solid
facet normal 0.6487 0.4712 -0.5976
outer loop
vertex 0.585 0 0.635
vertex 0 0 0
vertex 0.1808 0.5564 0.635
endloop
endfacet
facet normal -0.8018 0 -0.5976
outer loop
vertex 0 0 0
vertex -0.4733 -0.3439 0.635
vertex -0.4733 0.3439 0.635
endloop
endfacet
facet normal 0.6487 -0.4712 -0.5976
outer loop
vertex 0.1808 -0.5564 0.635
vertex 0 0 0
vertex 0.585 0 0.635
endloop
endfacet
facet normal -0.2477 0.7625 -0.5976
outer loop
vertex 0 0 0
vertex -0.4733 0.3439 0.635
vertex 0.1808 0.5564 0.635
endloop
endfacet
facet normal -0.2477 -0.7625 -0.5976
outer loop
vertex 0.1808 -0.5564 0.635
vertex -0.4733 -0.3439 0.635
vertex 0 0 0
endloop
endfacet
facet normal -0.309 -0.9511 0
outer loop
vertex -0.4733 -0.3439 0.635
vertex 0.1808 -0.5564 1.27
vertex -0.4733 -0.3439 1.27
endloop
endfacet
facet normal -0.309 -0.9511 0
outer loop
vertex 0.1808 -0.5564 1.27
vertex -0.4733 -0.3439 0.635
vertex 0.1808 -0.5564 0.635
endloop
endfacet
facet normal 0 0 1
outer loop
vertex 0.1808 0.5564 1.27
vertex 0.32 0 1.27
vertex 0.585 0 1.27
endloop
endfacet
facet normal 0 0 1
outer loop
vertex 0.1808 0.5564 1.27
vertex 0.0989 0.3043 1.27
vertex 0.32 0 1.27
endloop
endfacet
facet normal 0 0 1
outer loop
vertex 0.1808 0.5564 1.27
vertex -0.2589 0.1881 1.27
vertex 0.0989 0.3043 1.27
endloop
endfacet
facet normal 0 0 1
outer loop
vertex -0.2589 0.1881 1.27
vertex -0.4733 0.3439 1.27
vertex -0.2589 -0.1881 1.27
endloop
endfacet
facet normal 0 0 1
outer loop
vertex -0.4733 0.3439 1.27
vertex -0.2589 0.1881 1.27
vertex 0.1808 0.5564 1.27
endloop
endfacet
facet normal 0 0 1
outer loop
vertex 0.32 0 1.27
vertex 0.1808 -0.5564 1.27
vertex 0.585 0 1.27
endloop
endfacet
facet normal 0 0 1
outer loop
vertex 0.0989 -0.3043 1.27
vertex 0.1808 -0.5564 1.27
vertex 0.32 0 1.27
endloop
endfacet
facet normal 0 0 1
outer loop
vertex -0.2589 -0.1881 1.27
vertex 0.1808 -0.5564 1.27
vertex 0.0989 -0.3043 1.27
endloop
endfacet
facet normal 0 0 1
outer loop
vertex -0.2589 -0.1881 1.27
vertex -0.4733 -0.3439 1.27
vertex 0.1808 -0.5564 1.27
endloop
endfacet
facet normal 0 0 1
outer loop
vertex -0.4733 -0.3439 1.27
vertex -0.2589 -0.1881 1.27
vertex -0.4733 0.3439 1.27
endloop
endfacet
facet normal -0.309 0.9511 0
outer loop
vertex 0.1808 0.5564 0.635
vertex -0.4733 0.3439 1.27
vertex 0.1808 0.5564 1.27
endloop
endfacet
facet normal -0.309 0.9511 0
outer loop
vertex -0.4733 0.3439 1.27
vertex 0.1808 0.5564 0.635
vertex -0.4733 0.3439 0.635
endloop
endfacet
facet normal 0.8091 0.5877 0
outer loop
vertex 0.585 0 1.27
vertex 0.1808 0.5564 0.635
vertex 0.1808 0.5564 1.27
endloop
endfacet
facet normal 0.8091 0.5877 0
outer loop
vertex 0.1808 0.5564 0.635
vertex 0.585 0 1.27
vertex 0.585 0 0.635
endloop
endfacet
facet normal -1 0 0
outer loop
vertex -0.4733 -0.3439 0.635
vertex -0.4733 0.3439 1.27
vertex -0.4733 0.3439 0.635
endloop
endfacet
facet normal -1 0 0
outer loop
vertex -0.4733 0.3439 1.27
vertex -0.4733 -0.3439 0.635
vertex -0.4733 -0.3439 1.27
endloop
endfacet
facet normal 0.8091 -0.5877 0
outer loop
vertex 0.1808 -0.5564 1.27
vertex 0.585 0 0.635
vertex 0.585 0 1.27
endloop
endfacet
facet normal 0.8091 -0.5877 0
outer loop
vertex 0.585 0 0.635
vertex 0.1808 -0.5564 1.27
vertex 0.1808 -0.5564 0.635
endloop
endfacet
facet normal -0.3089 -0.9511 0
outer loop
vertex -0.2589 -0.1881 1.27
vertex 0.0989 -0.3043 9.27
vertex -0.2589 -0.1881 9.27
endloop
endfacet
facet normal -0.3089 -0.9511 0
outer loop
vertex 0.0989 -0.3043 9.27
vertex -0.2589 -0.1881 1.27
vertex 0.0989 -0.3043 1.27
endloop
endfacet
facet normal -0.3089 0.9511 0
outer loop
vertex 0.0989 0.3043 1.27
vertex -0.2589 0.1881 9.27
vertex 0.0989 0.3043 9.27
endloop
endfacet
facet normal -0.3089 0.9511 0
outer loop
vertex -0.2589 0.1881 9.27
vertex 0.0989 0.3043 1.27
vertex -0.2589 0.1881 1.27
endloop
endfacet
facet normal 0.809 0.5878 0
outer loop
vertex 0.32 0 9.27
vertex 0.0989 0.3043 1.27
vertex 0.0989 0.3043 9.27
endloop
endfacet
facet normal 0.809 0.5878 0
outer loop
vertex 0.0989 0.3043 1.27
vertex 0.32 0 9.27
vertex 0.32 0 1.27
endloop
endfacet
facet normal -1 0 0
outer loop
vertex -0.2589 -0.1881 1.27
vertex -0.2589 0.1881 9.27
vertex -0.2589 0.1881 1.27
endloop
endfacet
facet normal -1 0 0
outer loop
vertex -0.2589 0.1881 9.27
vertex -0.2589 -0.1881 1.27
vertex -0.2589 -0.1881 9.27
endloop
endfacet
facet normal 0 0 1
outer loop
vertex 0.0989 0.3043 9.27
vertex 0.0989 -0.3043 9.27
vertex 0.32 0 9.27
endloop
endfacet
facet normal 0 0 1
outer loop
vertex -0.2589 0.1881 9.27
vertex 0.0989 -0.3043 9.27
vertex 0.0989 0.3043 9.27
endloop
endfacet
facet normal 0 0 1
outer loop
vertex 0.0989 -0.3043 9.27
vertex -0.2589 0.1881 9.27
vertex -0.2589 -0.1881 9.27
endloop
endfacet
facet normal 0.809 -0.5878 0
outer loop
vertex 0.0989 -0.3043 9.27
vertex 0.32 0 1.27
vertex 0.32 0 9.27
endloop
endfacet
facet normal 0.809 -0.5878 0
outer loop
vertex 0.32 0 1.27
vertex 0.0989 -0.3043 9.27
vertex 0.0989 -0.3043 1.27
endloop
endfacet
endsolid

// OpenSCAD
module 075_PRP2501S() {
   color("Gold")
   //tip part 1
   translate([0,0,0])cylinder(h=1.27/2,d1=0,d2=1.17,center=false);
   //tip part 2
   color("Gold")
   translate([0,0,1.27/2])cylinder(h=1.27/2,d=1.17,center=false);
   //shaft 
   color("Gold")
   translate([0,0,1.27])cylinder(h=8,d=0.64,center=false);
}
075_PRP2501S();
